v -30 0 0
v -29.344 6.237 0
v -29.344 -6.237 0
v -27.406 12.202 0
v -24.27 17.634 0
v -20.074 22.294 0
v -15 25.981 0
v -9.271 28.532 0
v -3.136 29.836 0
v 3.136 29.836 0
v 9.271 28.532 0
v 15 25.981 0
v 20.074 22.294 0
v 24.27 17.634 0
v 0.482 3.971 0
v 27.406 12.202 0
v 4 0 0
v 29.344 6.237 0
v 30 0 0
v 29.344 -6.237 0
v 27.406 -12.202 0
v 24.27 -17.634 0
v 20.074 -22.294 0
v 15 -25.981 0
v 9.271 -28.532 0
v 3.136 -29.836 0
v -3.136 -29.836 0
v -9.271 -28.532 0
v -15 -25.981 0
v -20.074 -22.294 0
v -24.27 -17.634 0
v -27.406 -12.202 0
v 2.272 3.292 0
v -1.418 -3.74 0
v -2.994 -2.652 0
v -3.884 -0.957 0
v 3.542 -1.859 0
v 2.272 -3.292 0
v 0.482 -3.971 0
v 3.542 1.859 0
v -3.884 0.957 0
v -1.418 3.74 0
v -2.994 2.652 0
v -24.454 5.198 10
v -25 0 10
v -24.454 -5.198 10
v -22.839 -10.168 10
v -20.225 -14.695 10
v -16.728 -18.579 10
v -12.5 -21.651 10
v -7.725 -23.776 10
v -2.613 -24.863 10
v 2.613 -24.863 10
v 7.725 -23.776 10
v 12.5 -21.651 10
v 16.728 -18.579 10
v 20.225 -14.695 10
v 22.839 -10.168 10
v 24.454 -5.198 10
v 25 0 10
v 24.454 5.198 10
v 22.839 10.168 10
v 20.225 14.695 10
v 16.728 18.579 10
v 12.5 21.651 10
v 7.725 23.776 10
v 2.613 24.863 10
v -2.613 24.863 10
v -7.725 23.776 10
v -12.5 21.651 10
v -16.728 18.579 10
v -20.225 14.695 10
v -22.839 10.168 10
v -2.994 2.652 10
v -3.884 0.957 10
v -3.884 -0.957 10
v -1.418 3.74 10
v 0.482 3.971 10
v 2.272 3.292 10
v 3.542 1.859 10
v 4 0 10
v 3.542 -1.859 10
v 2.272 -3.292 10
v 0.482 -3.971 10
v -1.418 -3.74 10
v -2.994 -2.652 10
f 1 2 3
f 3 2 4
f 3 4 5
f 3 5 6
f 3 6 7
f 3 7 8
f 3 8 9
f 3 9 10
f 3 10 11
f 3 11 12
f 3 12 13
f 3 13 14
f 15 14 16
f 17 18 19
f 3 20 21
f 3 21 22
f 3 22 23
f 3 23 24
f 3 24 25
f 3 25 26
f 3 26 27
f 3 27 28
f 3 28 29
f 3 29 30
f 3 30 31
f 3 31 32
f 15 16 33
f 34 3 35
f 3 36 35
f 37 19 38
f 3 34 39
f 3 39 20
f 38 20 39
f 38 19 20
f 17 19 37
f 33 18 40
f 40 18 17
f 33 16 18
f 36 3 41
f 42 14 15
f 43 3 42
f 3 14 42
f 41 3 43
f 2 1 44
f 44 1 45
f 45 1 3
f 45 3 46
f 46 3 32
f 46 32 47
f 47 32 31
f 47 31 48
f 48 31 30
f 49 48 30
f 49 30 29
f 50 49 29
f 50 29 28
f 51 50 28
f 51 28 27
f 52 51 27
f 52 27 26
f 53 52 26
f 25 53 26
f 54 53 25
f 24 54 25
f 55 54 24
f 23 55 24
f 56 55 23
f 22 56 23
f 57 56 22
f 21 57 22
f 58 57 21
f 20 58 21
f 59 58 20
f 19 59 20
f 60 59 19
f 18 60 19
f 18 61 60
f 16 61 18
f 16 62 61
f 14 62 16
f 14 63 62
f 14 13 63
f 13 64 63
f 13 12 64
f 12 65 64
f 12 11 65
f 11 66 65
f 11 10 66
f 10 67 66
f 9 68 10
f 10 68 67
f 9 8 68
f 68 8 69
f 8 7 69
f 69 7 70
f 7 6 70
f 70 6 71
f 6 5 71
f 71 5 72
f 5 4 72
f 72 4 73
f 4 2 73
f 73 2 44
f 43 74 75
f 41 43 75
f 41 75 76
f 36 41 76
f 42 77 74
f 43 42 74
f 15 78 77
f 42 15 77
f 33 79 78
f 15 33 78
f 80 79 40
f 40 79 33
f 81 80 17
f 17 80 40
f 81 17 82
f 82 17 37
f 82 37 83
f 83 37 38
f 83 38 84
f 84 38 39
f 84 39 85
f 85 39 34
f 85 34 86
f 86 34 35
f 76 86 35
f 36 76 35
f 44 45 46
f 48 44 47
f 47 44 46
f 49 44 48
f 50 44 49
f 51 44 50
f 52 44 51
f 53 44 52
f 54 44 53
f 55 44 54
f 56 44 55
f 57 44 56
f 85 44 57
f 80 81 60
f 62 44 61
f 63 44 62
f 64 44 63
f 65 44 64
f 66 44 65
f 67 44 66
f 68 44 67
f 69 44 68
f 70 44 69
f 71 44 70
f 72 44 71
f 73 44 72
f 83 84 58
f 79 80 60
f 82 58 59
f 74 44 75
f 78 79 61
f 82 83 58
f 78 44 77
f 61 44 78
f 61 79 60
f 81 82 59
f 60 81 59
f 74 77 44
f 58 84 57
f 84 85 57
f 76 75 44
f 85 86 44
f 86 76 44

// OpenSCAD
difference(){
cylinder (h=10,r1=60/2,r2=50/2);
translate([0,0,-5])cylinder (h=20,r=8/2);
}
